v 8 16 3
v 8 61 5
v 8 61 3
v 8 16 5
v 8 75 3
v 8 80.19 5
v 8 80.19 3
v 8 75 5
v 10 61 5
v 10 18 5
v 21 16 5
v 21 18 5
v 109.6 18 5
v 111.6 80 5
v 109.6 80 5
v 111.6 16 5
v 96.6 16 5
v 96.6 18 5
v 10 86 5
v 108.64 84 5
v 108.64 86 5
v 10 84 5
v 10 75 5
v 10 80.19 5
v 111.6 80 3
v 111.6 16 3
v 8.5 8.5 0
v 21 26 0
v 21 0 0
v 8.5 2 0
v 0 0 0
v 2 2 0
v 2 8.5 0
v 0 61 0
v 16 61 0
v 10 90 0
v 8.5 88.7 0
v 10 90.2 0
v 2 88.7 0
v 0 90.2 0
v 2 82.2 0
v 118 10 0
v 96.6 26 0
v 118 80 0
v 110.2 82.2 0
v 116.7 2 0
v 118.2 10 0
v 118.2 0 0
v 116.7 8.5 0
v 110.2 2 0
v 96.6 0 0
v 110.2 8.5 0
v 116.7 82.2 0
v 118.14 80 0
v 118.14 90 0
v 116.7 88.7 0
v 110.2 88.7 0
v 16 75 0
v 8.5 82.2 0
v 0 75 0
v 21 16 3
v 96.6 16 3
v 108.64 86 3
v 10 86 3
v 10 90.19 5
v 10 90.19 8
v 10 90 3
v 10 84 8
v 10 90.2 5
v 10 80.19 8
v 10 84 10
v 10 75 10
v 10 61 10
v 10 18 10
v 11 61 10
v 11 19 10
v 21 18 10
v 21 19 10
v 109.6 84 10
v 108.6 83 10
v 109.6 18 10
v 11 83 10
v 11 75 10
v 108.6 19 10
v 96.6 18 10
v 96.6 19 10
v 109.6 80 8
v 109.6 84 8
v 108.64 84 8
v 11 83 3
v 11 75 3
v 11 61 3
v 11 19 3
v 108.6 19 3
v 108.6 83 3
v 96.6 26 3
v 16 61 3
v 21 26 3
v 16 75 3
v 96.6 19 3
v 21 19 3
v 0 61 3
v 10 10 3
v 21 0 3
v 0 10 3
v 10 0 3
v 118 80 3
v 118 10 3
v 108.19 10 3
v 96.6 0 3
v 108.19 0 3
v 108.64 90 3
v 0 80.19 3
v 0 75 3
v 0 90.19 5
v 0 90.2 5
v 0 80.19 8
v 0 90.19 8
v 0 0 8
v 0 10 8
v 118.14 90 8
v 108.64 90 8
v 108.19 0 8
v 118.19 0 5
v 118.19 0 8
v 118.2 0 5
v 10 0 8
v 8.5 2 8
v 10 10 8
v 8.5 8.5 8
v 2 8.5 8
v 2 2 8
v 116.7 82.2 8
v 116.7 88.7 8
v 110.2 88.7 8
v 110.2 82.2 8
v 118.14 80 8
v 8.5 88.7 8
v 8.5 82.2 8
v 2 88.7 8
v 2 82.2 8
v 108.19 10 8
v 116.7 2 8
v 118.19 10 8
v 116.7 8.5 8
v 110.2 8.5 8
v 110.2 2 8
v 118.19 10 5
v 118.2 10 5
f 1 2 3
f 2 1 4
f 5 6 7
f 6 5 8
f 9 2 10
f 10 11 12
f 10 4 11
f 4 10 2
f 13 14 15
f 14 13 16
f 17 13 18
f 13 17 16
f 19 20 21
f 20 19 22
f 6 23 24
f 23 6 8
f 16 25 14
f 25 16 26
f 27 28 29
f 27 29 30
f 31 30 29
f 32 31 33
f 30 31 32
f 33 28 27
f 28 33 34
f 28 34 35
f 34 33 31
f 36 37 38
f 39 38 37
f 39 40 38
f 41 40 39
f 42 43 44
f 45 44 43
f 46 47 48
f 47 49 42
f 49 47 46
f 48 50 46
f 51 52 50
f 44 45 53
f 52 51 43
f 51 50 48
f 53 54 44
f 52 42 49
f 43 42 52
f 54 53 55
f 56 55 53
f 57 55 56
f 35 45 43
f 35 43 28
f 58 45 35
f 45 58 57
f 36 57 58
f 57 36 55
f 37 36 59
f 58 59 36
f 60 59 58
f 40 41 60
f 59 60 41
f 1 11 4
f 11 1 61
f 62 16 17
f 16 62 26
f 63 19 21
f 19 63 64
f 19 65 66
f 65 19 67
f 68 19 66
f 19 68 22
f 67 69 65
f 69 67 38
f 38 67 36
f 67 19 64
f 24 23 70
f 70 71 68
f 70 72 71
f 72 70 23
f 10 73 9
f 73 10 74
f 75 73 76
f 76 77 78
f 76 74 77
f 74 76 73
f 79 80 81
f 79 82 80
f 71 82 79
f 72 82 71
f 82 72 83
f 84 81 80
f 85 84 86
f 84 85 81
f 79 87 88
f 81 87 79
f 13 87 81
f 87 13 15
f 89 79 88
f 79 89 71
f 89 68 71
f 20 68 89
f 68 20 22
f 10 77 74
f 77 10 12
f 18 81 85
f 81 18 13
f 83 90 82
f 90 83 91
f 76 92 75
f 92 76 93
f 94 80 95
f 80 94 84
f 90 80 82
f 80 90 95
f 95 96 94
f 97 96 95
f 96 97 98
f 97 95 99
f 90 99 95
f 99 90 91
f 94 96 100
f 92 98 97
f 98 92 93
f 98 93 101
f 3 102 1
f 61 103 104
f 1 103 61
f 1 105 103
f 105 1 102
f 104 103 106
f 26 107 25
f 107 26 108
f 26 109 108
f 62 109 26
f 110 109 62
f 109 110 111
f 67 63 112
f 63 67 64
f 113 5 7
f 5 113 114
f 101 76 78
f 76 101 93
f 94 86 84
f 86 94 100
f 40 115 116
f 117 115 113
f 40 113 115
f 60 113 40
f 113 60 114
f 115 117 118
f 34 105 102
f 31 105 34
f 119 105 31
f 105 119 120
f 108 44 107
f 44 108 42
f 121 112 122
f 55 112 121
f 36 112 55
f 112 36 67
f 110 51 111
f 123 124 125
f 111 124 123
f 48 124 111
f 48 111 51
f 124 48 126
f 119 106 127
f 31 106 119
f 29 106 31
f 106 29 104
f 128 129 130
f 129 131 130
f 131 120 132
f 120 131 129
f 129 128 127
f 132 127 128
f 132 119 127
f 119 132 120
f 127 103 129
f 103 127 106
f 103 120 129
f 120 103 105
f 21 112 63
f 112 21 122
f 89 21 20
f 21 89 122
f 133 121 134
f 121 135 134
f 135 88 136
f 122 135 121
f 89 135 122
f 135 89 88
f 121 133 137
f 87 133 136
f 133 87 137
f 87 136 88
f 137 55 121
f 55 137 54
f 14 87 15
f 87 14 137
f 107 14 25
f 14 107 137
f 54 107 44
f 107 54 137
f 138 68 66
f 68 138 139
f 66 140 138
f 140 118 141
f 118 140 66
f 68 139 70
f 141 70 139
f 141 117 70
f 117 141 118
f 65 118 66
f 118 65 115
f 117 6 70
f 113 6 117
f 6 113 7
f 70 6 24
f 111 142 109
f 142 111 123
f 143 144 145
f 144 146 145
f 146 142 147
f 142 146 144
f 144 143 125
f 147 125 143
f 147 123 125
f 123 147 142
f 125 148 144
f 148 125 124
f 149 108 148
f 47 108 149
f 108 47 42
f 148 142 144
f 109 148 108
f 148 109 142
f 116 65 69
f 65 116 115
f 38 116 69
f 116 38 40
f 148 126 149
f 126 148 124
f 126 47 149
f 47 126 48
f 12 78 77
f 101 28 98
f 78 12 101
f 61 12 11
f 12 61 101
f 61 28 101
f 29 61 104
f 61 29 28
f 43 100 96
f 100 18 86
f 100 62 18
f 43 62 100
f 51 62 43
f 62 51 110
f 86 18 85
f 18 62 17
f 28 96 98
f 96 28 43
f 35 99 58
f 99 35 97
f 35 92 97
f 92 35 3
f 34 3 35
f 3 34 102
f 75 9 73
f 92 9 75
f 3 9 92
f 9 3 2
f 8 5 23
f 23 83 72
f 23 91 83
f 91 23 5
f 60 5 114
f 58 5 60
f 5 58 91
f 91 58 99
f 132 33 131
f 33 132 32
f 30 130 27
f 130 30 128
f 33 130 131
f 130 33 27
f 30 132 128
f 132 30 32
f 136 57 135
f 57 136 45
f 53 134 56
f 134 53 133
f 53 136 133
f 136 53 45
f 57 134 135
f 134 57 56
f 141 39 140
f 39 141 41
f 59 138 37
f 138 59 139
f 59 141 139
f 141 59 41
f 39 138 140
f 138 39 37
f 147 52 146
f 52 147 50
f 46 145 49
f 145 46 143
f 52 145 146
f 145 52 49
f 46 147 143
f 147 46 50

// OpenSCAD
//
// Main Plante for SPP2 Ext
// 110618-01
//
// main base 190 x 86
MaxX = 118;
MaxY = 90;


module LEDBox()
{
    
   // grove holder Box
   
    
    difference()
    {
        cube([12.5,16.3,15]); 
        
        translate([3,-5,0])
        cube([6.5,22.6,20]); 
        
    }
    
    
difference()
    {
    union()
        {
        translate([11,0.7,2])
        #cube([5,15,5]);
    
        translate([-3,0.7,2])
        cube([5,15,5]);
       }

        translate([16,0.6,3.2])
        rotate([0,-45,0])
        #cube([5,16,6]);
    

        translate([-9,0.6,5])
        rotate([0,45,0])
        cube([5,17,8.0]);
}
    
}
module fitbox(x, y)

{
    
    difference()
    {
        union()
        {
        translate([-2,-2,0])
        cube([x+6,y+6,5]);
            
        cube([x+2,y+2,10]);
        }
        
        translate([1,1,3])
        cube([x,y,9]);
        
    }
    
    
}


module PlaceFitBox(x,y,xloc,yloc)
{
    translate([xloc,yloc])
fitbox(x, y);
    
}

$fn =400;

module PlaceGroveHole(xloc, yloc)
{
    translate([xloc,yloc,-20])
    cube([12.25,6.5,50]);

}

module VPlaceGroveHole(xloc, yloc)
{
    translate([xloc,yloc,-20])
    cube([7.5,12.25,50]);

}
        XFitBox = 97.6;
        YFitBox = 64;

difference()
{


    
union()
{
    // start of base
cube ([MaxX,MaxY,3]);

translate([-25,0,0])
union()
    {
// Place block

// Big Plate Extender Board
// 

translate([25,-30,0])
PlaceFitBox(XFitBox,YFitBox,10,MaxY-42);

    }

 // leg boxes
translate([0,0,0])
cube([10,10,8]);

translate([MaxX-5.8-3-1.01+0.45,MaxY-5.8-3-1.2,0])
#cube([9.5,10,8]);

translate([0,MaxY-5.8-3-1.01,0])
cube([10,10,8]);
        
translate([MaxX-5.8-3-1.01,0,0])
cube([10,10,8]);
    
    // supports
   translate([1-1,1-1,0])
cube([10,10,5]);

translate([MaxX-5.8-3-1+0.5,MaxY-5.8-3-1.2,0])
cube([9.4,10,5]);

translate([1-1,MaxY-5.8-3-1,0])
cube([10,10,5]);
        
translate([MaxX-5.8-3-1,1-1,0])
cube([10,10,5]); 
    
}




HoleSize = 3.0;
/*
translate([2,2,-1])
cube([HoleSize,HoleSize,20]);

translate([MaxX-8,2,-1])
cube([HoleSize,HoleSize,20]);

translate([2,MaxY-8,-1])
cube([HoleSize,HoleSize,20]);

translate([MaxX-8,MaxY-8,-1])
cube([HoleSize,HoleSize,20]);

*/

// Screw and Post Holes
// 2.5mm from edge
XEdgeoffset = 10;
YEdgeoffset = 9;
/*
translate([2.5+XEdgeoffset,1.5+YEdgeoffset,-1])
cylinder(20,d=2.5,center);

translate([XEdgeoffset+XFitBox-1,YFitBox+7,-1])
cylinder(20,d=2.5,center);

translate([XEdgeoffset+XFitBox-1,11,-1])
cylinder(20,d=2.5,center);

translate([XEdgeoffset+3,YEdgeoffset+YFitBox-2,-1])
cylinder(20,d=2.5,center);
*/

// Remove side for USB Plugs
translate([XEdgeoffset+11, YEdgeoffset-18,-5])
cube([XFitBox-18-4, 35, 20]);

// Remove slot for USB Power Plug

translate([0, YFitBox-2-1,-5])
cube([16, 14, 20]);

holeSize = 6.5;
// stand holes
translate([2,2,-5])
#cube([holeSize,holeSize,50]);

// stand holes
translate([MaxX-5.8-2,MaxY-5.8-2,-5])
#cube([holeSize,holeSize,50]);

// stand holes
translate([2,MaxY-5.8-2,-5])
#cube([holeSize,holeSize,50]);

// stand holes
translate([MaxX-5.8-2,2,-5])
#cube([holeSize,holeSize,50]);
}
